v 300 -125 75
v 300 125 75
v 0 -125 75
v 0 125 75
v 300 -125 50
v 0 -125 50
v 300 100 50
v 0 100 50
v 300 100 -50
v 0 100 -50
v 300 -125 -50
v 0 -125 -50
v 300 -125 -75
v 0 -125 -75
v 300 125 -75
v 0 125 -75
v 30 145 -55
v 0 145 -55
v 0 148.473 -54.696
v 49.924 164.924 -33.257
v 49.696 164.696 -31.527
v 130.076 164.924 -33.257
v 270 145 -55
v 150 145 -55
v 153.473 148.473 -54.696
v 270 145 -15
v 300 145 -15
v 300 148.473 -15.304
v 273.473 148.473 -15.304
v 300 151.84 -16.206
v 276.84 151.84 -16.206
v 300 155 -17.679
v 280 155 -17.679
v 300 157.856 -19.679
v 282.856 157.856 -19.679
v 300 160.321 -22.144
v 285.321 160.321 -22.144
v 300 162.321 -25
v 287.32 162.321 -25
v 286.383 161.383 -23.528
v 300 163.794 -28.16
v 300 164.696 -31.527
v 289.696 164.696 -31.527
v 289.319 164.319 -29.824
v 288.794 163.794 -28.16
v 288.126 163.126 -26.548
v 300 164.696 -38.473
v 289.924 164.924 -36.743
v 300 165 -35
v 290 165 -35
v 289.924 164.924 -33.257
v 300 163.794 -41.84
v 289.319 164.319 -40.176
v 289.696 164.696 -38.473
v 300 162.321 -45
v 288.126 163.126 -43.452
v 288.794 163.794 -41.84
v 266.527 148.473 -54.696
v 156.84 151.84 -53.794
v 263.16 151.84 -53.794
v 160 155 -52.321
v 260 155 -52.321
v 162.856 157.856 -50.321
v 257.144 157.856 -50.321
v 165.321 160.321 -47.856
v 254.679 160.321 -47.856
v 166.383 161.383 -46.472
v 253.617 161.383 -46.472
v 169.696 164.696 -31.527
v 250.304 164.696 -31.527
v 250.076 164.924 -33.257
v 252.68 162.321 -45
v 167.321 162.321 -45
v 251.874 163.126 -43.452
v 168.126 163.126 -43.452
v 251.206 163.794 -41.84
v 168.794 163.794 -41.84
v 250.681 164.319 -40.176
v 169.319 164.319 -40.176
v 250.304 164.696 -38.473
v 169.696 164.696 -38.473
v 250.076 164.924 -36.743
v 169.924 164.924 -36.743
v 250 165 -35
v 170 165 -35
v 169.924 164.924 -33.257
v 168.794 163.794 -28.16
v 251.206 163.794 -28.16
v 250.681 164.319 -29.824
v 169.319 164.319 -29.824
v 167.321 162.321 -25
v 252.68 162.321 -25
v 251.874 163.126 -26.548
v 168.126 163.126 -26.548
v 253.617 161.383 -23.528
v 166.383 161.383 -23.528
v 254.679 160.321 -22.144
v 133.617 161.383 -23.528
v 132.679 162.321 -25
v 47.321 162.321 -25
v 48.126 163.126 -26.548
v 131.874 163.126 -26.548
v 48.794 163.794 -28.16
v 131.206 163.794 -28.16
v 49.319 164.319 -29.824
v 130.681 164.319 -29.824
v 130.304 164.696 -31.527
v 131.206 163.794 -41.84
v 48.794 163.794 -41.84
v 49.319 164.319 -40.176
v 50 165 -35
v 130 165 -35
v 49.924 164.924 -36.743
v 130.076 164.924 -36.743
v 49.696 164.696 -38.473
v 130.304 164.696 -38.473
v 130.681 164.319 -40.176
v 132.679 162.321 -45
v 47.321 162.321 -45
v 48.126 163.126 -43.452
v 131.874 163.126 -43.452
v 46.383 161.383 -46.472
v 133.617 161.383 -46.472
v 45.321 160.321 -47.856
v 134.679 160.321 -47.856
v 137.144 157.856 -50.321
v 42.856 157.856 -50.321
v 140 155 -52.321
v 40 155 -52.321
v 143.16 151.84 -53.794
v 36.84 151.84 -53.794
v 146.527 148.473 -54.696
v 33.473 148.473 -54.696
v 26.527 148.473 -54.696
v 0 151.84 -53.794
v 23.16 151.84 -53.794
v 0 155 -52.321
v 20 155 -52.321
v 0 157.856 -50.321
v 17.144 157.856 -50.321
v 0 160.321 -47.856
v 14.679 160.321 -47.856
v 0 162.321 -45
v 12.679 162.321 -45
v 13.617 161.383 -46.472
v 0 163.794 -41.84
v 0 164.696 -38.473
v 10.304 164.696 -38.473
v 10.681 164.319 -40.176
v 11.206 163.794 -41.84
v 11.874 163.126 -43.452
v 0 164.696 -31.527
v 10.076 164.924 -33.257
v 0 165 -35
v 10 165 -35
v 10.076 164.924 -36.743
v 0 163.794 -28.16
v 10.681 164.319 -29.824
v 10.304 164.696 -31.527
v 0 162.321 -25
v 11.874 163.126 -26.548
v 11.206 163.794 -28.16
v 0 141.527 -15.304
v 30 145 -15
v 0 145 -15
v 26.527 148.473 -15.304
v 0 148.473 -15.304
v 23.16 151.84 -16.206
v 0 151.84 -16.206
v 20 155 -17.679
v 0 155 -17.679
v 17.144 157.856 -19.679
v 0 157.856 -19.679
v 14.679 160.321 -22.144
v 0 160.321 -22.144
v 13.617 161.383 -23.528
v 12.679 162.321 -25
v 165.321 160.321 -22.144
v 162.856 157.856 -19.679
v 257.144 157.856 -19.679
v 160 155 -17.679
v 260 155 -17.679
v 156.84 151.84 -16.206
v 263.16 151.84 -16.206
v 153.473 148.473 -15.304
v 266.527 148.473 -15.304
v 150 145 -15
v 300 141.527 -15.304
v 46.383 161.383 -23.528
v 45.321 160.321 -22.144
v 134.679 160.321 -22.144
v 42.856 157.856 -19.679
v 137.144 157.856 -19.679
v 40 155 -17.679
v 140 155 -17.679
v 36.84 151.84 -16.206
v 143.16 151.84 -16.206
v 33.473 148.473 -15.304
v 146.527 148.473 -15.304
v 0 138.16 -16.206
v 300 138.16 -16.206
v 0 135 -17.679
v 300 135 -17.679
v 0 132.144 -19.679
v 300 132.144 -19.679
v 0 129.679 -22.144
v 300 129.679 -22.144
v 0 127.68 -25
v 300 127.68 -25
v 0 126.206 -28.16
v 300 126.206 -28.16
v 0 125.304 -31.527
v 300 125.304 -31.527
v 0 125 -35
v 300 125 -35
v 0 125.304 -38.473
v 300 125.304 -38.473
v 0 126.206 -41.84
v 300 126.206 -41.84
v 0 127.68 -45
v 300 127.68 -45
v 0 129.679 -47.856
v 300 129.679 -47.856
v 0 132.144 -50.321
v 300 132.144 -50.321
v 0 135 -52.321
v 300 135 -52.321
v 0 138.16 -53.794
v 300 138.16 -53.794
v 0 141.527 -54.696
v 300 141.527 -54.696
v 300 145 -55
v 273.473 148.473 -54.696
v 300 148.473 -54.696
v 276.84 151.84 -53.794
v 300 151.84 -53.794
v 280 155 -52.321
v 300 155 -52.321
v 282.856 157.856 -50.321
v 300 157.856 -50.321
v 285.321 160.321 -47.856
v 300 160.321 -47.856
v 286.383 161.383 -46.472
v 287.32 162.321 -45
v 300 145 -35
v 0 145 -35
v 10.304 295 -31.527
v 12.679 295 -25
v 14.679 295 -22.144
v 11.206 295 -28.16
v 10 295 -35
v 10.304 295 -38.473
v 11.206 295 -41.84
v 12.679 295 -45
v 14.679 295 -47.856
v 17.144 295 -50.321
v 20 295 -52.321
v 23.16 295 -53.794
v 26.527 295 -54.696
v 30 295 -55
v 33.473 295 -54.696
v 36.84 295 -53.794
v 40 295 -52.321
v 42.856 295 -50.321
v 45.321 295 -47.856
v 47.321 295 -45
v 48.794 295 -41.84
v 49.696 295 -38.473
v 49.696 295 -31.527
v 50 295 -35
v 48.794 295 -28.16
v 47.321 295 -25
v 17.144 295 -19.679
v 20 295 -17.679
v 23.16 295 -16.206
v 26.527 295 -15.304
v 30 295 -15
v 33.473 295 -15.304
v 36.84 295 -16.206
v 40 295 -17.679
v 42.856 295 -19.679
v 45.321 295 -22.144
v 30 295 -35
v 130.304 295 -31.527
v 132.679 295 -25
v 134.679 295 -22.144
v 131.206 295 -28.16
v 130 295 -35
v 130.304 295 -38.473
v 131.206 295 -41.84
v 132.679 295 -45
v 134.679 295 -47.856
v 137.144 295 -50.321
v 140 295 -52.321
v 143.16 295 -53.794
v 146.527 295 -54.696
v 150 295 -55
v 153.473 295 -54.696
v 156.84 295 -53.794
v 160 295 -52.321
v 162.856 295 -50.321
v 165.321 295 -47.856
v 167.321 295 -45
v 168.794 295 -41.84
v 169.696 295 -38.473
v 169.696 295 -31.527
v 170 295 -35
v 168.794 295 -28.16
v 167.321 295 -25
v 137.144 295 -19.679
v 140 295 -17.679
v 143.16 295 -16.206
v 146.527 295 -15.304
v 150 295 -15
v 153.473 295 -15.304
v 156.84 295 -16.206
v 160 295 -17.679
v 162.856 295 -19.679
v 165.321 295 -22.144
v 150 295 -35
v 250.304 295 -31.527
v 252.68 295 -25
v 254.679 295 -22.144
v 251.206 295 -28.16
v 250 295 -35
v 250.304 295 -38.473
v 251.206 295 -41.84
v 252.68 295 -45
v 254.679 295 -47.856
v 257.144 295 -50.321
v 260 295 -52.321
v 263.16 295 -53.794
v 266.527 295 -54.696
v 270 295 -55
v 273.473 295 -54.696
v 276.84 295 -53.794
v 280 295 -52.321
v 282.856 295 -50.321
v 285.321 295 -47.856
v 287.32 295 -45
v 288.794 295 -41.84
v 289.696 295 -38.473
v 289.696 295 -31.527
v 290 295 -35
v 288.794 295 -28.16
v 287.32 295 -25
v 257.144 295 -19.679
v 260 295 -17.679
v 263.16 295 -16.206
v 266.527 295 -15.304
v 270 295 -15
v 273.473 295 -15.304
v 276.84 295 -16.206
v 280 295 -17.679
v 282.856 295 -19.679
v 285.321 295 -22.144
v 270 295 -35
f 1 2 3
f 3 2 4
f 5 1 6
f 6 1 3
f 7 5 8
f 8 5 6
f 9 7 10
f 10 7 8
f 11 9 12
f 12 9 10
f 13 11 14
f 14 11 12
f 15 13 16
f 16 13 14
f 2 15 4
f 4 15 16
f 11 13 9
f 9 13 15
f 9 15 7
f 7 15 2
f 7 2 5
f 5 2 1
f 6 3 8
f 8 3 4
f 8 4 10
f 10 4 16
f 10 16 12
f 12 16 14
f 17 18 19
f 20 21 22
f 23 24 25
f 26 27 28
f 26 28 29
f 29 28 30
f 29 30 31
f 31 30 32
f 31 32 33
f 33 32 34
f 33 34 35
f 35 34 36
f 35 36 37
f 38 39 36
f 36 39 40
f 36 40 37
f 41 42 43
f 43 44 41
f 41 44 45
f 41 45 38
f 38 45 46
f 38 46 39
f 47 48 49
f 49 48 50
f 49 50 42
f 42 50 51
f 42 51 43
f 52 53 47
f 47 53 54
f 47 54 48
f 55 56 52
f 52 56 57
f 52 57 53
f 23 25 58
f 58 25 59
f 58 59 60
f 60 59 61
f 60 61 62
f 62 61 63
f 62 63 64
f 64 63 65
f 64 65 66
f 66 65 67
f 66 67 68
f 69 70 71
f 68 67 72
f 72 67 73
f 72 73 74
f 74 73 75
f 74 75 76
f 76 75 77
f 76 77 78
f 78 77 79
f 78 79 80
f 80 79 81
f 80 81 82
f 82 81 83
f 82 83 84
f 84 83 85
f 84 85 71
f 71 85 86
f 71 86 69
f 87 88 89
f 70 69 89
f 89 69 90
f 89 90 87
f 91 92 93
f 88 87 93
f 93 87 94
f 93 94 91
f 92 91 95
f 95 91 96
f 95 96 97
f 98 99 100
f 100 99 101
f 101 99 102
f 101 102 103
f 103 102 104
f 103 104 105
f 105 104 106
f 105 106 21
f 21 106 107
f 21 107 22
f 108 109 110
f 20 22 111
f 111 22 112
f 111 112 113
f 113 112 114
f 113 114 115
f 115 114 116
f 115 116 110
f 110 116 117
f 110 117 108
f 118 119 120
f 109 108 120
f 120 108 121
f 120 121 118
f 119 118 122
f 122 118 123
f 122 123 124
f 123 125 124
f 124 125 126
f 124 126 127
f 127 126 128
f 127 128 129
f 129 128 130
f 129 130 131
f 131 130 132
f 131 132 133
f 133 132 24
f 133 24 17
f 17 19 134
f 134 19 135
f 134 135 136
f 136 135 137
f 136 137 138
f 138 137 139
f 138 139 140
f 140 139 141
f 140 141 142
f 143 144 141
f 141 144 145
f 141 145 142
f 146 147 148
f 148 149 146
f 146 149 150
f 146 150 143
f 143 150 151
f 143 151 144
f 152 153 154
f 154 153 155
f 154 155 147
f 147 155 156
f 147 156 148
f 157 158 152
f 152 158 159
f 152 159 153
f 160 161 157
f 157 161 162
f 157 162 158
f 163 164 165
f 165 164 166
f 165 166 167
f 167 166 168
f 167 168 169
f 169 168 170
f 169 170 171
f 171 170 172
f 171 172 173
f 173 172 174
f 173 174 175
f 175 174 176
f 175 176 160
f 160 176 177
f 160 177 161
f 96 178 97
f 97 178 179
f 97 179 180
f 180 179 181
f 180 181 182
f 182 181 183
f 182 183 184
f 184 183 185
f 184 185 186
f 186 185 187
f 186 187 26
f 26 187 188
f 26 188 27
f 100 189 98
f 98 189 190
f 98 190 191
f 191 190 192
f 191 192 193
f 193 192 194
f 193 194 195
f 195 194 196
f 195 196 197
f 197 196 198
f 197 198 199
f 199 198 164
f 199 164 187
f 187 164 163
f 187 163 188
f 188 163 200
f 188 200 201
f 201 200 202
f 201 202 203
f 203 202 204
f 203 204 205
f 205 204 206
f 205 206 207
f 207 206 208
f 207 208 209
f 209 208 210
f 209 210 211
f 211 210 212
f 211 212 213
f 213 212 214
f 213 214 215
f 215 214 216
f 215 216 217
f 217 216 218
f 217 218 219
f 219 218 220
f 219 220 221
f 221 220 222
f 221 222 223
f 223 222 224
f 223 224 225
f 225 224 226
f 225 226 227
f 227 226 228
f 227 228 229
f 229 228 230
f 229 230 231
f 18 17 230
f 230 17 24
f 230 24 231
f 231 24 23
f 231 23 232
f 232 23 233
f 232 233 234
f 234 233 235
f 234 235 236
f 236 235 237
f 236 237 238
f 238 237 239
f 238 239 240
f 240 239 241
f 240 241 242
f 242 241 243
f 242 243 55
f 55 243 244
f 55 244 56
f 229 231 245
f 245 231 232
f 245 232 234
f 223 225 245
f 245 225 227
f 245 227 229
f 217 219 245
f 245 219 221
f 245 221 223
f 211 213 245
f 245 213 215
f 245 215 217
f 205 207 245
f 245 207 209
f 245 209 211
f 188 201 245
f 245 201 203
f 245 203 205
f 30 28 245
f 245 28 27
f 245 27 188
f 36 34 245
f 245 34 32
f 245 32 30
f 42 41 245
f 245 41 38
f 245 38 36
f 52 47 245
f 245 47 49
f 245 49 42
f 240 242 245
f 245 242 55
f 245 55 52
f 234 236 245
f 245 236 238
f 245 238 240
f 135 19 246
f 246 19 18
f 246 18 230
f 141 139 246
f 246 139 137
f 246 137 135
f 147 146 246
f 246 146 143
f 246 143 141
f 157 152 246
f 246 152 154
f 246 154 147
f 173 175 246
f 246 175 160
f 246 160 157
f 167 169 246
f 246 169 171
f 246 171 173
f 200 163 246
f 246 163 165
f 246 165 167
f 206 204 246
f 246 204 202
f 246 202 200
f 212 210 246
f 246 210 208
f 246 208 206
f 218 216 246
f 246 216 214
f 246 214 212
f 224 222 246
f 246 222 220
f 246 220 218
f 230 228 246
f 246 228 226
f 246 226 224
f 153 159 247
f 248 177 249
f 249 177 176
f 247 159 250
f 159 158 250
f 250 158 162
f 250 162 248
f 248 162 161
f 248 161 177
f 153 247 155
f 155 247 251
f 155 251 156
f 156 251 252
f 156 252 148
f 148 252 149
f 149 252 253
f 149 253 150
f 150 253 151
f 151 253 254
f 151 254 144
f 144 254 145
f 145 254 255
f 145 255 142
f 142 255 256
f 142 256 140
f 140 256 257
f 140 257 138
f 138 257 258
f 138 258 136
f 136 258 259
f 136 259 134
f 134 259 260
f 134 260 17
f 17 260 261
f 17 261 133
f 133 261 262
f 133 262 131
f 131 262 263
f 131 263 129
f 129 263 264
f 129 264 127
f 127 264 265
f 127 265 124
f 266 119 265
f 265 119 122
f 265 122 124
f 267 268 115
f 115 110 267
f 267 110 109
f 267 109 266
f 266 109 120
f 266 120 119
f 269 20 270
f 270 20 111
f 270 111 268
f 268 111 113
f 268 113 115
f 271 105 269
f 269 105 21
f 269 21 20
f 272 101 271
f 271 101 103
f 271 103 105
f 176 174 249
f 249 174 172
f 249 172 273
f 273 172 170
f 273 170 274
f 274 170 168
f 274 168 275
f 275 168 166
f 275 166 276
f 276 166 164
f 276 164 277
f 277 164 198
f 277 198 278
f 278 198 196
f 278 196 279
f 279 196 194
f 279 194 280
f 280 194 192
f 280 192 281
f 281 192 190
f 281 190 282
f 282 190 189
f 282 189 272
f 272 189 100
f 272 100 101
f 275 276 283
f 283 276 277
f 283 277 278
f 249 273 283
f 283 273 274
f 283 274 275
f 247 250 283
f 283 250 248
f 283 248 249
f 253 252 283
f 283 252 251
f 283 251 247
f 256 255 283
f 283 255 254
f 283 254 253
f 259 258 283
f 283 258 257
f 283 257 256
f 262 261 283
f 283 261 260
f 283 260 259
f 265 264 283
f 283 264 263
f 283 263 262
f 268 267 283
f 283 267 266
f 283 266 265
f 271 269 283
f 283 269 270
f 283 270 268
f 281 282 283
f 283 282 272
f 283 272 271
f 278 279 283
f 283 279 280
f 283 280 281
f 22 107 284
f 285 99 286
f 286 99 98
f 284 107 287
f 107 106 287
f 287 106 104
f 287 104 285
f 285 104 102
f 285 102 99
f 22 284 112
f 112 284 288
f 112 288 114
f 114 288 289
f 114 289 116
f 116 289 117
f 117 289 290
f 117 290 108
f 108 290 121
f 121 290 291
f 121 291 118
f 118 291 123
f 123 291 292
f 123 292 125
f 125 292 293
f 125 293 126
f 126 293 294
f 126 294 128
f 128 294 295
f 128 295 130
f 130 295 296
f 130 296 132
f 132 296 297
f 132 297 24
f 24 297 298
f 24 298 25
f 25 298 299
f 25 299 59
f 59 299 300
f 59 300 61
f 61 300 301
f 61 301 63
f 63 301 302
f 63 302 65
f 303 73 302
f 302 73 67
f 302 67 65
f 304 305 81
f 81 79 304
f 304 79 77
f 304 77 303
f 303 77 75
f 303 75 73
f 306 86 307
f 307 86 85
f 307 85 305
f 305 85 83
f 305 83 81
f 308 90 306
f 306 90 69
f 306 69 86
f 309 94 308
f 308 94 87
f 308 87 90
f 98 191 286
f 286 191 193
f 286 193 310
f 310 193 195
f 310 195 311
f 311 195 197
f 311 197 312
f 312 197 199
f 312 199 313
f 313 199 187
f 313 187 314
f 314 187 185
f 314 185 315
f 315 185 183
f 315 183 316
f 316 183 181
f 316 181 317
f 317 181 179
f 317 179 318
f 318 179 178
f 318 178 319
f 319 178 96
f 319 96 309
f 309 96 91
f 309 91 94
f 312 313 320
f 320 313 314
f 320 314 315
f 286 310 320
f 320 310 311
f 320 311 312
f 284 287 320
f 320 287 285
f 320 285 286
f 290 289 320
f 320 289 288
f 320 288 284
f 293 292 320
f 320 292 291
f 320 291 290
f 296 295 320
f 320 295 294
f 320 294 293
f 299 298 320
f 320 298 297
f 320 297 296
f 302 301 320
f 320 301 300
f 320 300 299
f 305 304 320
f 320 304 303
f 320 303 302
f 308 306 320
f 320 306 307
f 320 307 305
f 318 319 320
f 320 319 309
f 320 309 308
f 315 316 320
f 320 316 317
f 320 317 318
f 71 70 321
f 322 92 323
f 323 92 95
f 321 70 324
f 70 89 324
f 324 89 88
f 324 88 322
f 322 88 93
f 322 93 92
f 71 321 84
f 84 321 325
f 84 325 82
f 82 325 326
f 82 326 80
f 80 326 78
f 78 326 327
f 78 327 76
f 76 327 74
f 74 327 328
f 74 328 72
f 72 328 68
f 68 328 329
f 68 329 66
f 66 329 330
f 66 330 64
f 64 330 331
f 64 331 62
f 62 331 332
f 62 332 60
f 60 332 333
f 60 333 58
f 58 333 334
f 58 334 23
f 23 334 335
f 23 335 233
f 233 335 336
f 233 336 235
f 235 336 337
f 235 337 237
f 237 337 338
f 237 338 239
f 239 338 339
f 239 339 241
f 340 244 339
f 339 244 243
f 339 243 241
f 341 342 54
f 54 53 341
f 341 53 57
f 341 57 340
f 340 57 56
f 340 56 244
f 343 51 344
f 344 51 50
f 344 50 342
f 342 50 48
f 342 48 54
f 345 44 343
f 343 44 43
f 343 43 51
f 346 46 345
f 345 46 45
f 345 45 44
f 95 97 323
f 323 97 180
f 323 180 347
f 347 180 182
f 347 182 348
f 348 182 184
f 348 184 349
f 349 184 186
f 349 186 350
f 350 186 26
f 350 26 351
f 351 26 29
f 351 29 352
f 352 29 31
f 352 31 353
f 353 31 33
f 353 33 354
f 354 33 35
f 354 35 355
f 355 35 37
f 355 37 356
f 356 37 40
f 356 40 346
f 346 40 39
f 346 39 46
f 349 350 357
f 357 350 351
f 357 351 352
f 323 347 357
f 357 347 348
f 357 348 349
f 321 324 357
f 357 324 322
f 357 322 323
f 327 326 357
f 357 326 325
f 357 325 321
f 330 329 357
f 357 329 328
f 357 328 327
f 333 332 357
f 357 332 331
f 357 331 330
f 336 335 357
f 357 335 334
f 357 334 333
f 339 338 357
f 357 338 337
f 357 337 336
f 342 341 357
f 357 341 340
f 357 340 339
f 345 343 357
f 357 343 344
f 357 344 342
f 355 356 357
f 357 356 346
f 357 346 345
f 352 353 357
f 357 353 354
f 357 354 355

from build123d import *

# Parameters (mm, degrees)
EXTRUDE_1_DEPTH = 300
SKETCH_2_R      = 20
EXTRUDE_2_DEPTH = 300
SKETCH_3_R      = 20
EXTRUDE_3_DEPTH = 150


with BuildPart() as part:
    # 스케치1 → 보스-돌출1 (new body)
    with BuildSketch(Plane(origin=(0, 0, 0), x_dir=(0, 0, -1), z_dir=(1, 0, 0))):
        Polygon((-50, -125), (-75, -125), (-75, 125), (75, 125), (75, -125), (50, -125), (50, 100), (-50, 100), align=None)
    extrude(amount=EXTRUDE_1_DEPTH)


with BuildPart() as body_2:
    # 스케치2 → 보스-돌출2 (new body)
    with BuildSketch(Plane(origin=(0, 0, 0), x_dir=(0, 0, -1), z_dir=(1, 0, 0))):
        with Locations((35, 145)):
            Circle(SKETCH_2_R)
    extrude(amount=EXTRUDE_2_DEPTH)

    # 스케치3 → 보스-돌출3 (add)
    with BuildSketch(Plane(origin=(0, 145, 0), x_dir=(1, 0, 0), z_dir=(0, 1, 0))):
        with Locations((30, 35)):
            Circle(SKETCH_3_R)
        with Locations((150, 35)):
            Circle(SKETCH_3_R)
        with Locations((270, 35)):
            Circle(SKETCH_3_R)
    extrude(amount=EXTRUDE_3_DEPTH)


solid = Compound([part.part, body_2.part])
